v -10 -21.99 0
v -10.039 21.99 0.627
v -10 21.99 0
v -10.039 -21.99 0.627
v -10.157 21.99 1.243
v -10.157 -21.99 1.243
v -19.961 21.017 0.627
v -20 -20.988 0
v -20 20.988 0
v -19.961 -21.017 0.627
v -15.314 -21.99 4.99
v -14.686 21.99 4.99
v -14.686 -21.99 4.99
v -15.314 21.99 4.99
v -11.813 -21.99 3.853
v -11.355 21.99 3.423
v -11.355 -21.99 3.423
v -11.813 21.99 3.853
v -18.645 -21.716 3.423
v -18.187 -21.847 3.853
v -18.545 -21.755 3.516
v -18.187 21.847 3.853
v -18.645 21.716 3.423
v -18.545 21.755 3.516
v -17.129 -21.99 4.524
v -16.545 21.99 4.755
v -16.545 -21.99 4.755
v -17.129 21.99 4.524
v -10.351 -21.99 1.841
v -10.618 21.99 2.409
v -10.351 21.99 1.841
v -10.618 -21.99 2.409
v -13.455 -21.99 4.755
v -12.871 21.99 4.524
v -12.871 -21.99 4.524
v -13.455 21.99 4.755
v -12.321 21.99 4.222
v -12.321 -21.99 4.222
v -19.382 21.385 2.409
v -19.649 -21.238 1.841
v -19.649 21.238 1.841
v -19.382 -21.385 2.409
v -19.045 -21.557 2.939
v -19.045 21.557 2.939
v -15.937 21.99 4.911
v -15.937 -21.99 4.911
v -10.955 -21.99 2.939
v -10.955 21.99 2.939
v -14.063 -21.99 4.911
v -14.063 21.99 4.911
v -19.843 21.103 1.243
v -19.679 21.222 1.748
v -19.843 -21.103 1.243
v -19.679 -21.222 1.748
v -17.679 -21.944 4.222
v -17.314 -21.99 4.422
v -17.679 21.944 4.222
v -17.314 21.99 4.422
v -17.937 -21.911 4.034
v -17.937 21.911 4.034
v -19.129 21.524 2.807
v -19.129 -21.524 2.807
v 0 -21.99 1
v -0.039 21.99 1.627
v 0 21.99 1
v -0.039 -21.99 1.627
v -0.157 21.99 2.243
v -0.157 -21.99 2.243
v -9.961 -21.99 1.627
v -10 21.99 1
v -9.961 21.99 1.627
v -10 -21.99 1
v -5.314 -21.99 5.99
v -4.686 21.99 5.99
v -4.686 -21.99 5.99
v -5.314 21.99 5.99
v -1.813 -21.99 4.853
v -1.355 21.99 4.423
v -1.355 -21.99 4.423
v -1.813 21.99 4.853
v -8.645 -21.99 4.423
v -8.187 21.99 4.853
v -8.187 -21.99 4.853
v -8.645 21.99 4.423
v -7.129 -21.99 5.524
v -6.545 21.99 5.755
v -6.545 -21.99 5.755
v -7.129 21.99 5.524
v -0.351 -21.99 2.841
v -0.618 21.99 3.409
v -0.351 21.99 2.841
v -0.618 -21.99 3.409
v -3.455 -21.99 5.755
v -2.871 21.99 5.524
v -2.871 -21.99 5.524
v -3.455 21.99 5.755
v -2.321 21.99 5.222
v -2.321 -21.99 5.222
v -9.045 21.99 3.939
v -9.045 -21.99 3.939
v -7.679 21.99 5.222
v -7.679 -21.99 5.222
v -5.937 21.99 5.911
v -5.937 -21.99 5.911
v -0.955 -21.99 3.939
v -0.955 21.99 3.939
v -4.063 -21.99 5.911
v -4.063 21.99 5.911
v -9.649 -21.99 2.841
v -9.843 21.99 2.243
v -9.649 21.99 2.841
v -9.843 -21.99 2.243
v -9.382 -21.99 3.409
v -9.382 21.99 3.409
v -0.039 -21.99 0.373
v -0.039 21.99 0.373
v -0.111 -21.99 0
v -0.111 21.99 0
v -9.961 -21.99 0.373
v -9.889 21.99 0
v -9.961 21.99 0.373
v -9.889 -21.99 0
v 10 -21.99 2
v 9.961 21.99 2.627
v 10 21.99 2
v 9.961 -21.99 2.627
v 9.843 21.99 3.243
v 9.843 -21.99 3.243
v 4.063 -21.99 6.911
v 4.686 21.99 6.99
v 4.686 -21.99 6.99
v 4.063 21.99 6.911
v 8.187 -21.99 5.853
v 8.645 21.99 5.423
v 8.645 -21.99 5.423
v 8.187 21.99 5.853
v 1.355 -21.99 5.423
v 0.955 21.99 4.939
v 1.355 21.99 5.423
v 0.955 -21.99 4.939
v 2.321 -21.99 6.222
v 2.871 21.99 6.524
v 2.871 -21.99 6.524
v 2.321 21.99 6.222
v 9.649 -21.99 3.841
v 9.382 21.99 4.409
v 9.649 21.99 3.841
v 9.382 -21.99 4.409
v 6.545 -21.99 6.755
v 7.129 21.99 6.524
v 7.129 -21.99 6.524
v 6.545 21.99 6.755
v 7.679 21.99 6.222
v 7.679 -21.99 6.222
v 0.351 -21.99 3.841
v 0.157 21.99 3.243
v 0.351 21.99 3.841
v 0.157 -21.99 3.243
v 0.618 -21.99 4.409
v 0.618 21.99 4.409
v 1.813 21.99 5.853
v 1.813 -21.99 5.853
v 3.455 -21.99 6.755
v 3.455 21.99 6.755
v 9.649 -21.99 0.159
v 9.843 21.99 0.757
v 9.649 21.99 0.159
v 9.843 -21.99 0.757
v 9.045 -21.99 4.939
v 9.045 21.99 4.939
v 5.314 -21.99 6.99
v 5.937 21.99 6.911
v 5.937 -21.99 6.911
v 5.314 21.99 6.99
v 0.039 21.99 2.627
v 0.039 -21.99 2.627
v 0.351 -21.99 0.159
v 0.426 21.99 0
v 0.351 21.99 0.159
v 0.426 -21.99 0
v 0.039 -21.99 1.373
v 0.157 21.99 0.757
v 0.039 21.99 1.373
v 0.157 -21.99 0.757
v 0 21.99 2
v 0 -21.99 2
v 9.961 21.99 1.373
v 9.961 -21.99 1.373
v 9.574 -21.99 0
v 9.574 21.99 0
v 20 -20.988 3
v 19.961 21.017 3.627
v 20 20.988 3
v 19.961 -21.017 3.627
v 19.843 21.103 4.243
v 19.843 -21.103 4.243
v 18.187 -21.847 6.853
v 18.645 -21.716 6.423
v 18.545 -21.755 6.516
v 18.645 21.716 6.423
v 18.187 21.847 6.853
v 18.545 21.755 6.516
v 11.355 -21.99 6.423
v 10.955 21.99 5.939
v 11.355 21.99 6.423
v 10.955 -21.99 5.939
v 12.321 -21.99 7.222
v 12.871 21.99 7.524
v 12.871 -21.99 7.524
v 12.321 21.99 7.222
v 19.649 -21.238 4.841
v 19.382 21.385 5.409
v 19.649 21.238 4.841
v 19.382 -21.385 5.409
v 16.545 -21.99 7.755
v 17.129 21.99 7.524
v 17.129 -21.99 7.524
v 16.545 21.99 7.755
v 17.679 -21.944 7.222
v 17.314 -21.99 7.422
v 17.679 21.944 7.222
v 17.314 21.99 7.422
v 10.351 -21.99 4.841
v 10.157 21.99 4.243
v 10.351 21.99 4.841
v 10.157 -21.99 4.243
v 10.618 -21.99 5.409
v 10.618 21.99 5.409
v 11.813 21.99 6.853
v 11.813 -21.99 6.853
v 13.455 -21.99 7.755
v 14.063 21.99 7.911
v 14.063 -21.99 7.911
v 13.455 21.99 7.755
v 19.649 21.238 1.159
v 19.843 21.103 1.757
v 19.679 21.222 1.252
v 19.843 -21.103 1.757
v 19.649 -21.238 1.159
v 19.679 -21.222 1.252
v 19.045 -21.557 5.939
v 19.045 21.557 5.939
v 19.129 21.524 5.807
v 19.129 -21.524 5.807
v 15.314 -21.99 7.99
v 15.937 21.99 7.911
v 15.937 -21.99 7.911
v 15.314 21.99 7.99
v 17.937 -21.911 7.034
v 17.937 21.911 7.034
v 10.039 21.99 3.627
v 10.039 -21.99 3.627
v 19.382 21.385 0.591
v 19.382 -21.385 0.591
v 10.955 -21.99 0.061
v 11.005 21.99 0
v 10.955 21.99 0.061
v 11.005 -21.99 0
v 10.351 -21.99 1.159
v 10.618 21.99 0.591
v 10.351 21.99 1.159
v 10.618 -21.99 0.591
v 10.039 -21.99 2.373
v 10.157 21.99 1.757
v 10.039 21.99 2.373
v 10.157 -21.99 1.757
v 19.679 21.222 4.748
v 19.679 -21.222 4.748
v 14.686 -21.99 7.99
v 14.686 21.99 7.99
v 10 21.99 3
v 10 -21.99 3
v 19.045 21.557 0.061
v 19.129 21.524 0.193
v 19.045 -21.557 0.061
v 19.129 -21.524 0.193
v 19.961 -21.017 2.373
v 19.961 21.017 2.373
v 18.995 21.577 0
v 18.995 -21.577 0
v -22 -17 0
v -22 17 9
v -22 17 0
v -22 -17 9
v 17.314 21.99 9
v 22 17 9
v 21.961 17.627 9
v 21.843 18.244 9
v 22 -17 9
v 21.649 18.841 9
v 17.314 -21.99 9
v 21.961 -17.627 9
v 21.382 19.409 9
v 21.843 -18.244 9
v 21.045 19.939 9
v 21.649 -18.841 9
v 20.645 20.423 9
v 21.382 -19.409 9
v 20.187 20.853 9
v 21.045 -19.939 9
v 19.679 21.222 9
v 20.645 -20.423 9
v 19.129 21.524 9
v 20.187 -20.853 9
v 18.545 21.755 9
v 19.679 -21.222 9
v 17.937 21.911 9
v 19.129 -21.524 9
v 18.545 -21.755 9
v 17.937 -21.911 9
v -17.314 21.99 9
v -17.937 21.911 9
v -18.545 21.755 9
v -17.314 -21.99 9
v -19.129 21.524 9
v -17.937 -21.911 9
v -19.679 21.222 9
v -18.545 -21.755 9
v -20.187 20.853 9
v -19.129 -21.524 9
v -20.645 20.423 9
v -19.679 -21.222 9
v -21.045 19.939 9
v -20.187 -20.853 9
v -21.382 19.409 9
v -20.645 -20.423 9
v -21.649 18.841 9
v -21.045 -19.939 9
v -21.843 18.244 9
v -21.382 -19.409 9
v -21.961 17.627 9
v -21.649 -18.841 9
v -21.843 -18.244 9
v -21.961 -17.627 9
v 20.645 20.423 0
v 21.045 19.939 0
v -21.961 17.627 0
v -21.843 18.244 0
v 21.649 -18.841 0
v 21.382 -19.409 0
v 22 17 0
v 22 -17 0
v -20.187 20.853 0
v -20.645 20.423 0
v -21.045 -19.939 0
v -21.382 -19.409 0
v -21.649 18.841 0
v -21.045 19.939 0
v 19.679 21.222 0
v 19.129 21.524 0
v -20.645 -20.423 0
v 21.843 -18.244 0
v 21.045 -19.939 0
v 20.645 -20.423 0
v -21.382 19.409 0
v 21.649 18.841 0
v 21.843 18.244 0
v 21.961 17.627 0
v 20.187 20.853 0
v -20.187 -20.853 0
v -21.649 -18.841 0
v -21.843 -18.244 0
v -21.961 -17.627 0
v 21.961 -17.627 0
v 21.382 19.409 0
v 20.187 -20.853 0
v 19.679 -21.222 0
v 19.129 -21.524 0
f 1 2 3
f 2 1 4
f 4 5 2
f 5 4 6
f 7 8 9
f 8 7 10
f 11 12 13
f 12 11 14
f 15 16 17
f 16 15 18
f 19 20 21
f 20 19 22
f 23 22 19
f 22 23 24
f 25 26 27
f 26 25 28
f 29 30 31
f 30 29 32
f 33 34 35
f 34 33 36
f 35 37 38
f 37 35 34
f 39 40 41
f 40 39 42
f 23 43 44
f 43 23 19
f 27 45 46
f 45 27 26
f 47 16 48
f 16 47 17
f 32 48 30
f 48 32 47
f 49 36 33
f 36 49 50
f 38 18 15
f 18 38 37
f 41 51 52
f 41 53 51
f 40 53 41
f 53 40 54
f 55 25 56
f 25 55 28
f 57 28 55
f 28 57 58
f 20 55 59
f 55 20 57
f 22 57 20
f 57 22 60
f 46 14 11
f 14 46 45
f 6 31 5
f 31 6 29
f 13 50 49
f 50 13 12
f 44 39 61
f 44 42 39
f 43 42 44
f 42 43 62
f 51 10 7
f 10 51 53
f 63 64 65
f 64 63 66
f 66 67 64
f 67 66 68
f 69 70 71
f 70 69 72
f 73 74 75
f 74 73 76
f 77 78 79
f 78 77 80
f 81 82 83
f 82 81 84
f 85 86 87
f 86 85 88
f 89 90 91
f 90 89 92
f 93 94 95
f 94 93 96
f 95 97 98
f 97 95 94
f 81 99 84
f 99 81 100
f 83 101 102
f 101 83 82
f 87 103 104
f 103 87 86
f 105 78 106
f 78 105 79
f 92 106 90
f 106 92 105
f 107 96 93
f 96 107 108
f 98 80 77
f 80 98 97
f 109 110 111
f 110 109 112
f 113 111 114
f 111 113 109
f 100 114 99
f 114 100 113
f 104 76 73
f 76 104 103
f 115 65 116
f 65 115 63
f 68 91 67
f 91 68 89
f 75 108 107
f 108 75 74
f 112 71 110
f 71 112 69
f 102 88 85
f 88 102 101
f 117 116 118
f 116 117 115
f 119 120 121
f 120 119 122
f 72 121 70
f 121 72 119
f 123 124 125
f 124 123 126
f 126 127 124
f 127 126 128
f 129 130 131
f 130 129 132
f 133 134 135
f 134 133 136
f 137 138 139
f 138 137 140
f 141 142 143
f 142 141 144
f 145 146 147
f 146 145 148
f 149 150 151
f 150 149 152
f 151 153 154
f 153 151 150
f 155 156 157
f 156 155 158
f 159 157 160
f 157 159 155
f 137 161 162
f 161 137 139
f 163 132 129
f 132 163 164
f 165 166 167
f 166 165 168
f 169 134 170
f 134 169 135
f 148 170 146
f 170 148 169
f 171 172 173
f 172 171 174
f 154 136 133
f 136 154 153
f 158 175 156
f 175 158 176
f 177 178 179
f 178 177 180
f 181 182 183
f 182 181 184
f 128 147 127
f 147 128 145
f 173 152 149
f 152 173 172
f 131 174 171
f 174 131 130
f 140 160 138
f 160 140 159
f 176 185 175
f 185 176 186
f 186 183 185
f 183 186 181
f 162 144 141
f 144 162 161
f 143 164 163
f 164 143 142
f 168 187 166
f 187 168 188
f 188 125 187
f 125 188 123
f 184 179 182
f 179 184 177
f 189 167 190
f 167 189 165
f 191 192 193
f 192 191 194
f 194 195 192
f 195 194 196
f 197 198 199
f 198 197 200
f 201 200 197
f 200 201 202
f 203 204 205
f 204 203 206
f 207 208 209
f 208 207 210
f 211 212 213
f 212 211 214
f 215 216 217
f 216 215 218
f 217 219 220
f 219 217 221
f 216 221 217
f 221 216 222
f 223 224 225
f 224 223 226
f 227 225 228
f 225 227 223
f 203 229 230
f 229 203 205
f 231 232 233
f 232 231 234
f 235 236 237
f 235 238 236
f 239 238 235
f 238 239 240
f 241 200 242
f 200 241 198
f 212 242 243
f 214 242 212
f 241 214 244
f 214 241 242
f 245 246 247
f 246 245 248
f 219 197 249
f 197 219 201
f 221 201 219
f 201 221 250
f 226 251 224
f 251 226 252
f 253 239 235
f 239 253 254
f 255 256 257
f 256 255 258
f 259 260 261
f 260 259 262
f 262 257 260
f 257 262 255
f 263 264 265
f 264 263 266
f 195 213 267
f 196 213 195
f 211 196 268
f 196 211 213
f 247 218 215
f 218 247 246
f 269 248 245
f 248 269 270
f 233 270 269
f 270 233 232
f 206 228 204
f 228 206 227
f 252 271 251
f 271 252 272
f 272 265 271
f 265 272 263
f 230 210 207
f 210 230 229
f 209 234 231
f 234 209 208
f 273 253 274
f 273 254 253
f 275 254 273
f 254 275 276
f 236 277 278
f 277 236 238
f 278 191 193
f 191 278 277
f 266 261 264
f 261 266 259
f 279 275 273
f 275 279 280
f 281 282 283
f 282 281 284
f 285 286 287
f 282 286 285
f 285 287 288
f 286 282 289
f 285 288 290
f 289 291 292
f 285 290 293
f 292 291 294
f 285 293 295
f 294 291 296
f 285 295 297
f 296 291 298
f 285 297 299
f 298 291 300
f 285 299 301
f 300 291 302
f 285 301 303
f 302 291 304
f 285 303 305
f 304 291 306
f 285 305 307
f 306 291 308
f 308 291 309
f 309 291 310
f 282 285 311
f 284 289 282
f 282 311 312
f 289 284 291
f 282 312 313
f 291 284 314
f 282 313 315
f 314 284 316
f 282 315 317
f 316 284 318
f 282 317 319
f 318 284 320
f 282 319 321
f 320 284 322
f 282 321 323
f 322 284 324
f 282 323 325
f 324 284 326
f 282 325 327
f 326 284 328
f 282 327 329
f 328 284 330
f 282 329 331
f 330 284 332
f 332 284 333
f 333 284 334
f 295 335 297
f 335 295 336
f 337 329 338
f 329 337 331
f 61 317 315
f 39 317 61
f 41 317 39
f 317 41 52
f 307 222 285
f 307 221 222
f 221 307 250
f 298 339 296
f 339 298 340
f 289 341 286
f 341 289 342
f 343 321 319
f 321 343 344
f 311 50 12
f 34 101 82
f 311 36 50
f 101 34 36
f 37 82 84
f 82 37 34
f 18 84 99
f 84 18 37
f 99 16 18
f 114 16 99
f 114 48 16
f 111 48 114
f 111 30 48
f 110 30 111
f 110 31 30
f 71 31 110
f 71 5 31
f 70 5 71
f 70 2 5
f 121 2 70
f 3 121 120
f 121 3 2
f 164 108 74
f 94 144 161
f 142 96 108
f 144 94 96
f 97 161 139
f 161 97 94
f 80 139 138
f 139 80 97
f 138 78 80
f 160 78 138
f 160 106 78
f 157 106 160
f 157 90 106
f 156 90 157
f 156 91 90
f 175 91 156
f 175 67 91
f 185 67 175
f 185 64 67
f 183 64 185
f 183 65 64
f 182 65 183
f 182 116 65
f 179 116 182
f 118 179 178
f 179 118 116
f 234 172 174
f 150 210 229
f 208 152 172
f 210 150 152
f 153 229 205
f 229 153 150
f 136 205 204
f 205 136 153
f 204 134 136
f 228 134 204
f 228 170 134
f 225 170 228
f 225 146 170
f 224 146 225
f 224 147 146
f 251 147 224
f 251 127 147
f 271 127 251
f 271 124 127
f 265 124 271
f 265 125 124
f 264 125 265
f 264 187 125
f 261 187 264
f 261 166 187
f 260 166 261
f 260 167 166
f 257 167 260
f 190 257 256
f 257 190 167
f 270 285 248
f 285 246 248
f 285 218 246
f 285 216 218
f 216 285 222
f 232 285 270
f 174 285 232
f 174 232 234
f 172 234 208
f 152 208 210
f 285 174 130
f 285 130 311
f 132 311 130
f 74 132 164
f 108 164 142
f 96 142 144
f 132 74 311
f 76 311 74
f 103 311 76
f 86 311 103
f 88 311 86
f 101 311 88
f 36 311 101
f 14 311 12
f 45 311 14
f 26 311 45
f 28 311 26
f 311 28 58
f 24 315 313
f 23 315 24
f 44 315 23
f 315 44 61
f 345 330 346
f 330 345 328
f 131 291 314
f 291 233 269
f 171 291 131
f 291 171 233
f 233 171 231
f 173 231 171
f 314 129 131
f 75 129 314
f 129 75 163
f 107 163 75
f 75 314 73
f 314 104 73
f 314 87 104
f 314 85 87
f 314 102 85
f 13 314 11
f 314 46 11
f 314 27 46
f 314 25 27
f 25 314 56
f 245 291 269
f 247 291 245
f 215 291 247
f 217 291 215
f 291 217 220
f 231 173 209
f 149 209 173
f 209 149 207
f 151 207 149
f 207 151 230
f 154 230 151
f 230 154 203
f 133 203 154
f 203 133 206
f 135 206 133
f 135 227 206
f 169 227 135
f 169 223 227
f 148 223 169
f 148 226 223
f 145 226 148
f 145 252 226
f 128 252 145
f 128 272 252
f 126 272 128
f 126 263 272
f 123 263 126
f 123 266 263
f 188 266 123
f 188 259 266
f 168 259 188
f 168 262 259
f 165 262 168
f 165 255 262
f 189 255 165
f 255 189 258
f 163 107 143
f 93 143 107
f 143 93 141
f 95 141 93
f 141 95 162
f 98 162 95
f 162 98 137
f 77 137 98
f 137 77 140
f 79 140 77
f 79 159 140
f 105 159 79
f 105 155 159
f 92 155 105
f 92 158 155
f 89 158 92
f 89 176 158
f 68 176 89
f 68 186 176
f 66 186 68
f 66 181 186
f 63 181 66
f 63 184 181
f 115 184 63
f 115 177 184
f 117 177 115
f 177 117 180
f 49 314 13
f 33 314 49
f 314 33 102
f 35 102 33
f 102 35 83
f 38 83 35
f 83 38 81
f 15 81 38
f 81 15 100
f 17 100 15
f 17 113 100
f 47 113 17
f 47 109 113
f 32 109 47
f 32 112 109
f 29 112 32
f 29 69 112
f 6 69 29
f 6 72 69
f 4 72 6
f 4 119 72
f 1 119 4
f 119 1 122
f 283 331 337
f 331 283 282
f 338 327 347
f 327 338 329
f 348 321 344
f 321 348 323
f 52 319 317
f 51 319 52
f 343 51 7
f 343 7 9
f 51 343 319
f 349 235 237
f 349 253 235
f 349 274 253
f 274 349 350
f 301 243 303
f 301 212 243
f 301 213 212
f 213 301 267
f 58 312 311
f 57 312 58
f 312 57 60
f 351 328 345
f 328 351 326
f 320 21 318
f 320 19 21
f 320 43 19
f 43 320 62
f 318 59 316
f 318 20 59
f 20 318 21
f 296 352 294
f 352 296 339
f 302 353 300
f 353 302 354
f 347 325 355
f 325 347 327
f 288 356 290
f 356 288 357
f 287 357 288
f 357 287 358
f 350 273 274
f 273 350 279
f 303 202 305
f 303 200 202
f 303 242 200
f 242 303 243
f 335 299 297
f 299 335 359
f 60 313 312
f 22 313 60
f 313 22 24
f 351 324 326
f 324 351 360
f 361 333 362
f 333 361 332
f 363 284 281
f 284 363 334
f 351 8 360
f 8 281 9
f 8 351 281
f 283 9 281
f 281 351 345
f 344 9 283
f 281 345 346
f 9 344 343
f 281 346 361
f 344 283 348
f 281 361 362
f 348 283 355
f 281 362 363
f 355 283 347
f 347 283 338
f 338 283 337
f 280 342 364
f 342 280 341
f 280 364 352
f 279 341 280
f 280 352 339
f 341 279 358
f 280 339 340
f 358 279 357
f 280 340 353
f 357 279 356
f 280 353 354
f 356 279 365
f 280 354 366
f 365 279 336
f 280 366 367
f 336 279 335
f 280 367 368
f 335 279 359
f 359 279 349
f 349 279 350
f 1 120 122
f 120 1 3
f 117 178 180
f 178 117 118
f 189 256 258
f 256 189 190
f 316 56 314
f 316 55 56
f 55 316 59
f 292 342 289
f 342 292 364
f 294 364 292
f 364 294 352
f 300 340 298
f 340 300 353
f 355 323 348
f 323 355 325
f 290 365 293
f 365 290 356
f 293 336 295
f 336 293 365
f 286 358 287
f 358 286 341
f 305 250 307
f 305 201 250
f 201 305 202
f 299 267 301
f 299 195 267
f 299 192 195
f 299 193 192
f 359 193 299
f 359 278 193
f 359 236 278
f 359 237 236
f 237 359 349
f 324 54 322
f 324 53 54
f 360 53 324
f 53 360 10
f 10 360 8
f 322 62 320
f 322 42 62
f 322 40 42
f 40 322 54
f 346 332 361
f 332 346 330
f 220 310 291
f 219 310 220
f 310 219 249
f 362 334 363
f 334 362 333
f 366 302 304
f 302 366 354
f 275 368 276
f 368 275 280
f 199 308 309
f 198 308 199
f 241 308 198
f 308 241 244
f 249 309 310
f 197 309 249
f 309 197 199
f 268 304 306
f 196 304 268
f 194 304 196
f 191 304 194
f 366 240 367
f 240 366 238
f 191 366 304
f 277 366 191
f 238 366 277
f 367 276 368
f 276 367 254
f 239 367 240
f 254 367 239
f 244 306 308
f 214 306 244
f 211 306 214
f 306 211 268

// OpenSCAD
$fn = 50;


difference() {
	union() {
		hull() {
			translate(v = [-17.0000000000, 17.0000000000, 0]) {
				cylinder(h = 9, r = 5);
			}
			translate(v = [17.0000000000, 17.0000000000, 0]) {
				cylinder(h = 9, r = 5);
			}
			translate(v = [-17.0000000000, -17.0000000000, 0]) {
				cylinder(h = 9, r = 5);
			}
			translate(v = [17.0000000000, -17.0000000000, 0]) {
				cylinder(h = 9, r = 5);
			}
		}
	}
	union() {
		#translate(v = [-15.0000000000, 22.5000000000, 0.0000000000]) {
			rotate(a = [90, 0, 0]) {
				cylinder(h = 45, r = 5);
			}
		}
		#translate(v = [-5.0000000000, 22.5000000000, 1.0000000000]) {
			rotate(a = [90, 0, 0]) {
				cylinder(h = 45, r = 5);
			}
		}
		#translate(v = [5.0000000000, 22.5000000000, 2.0000000000]) {
			rotate(a = [90, 0, 0]) {
				cylinder(h = 45, r = 5);
			}
		}
		#translate(v = [15.0000000000, 22.5000000000, 3.0000000000]) {
			rotate(a = [90, 0, 0]) {
				cylinder(h = 45, r = 5);
			}
		}
	}
}
